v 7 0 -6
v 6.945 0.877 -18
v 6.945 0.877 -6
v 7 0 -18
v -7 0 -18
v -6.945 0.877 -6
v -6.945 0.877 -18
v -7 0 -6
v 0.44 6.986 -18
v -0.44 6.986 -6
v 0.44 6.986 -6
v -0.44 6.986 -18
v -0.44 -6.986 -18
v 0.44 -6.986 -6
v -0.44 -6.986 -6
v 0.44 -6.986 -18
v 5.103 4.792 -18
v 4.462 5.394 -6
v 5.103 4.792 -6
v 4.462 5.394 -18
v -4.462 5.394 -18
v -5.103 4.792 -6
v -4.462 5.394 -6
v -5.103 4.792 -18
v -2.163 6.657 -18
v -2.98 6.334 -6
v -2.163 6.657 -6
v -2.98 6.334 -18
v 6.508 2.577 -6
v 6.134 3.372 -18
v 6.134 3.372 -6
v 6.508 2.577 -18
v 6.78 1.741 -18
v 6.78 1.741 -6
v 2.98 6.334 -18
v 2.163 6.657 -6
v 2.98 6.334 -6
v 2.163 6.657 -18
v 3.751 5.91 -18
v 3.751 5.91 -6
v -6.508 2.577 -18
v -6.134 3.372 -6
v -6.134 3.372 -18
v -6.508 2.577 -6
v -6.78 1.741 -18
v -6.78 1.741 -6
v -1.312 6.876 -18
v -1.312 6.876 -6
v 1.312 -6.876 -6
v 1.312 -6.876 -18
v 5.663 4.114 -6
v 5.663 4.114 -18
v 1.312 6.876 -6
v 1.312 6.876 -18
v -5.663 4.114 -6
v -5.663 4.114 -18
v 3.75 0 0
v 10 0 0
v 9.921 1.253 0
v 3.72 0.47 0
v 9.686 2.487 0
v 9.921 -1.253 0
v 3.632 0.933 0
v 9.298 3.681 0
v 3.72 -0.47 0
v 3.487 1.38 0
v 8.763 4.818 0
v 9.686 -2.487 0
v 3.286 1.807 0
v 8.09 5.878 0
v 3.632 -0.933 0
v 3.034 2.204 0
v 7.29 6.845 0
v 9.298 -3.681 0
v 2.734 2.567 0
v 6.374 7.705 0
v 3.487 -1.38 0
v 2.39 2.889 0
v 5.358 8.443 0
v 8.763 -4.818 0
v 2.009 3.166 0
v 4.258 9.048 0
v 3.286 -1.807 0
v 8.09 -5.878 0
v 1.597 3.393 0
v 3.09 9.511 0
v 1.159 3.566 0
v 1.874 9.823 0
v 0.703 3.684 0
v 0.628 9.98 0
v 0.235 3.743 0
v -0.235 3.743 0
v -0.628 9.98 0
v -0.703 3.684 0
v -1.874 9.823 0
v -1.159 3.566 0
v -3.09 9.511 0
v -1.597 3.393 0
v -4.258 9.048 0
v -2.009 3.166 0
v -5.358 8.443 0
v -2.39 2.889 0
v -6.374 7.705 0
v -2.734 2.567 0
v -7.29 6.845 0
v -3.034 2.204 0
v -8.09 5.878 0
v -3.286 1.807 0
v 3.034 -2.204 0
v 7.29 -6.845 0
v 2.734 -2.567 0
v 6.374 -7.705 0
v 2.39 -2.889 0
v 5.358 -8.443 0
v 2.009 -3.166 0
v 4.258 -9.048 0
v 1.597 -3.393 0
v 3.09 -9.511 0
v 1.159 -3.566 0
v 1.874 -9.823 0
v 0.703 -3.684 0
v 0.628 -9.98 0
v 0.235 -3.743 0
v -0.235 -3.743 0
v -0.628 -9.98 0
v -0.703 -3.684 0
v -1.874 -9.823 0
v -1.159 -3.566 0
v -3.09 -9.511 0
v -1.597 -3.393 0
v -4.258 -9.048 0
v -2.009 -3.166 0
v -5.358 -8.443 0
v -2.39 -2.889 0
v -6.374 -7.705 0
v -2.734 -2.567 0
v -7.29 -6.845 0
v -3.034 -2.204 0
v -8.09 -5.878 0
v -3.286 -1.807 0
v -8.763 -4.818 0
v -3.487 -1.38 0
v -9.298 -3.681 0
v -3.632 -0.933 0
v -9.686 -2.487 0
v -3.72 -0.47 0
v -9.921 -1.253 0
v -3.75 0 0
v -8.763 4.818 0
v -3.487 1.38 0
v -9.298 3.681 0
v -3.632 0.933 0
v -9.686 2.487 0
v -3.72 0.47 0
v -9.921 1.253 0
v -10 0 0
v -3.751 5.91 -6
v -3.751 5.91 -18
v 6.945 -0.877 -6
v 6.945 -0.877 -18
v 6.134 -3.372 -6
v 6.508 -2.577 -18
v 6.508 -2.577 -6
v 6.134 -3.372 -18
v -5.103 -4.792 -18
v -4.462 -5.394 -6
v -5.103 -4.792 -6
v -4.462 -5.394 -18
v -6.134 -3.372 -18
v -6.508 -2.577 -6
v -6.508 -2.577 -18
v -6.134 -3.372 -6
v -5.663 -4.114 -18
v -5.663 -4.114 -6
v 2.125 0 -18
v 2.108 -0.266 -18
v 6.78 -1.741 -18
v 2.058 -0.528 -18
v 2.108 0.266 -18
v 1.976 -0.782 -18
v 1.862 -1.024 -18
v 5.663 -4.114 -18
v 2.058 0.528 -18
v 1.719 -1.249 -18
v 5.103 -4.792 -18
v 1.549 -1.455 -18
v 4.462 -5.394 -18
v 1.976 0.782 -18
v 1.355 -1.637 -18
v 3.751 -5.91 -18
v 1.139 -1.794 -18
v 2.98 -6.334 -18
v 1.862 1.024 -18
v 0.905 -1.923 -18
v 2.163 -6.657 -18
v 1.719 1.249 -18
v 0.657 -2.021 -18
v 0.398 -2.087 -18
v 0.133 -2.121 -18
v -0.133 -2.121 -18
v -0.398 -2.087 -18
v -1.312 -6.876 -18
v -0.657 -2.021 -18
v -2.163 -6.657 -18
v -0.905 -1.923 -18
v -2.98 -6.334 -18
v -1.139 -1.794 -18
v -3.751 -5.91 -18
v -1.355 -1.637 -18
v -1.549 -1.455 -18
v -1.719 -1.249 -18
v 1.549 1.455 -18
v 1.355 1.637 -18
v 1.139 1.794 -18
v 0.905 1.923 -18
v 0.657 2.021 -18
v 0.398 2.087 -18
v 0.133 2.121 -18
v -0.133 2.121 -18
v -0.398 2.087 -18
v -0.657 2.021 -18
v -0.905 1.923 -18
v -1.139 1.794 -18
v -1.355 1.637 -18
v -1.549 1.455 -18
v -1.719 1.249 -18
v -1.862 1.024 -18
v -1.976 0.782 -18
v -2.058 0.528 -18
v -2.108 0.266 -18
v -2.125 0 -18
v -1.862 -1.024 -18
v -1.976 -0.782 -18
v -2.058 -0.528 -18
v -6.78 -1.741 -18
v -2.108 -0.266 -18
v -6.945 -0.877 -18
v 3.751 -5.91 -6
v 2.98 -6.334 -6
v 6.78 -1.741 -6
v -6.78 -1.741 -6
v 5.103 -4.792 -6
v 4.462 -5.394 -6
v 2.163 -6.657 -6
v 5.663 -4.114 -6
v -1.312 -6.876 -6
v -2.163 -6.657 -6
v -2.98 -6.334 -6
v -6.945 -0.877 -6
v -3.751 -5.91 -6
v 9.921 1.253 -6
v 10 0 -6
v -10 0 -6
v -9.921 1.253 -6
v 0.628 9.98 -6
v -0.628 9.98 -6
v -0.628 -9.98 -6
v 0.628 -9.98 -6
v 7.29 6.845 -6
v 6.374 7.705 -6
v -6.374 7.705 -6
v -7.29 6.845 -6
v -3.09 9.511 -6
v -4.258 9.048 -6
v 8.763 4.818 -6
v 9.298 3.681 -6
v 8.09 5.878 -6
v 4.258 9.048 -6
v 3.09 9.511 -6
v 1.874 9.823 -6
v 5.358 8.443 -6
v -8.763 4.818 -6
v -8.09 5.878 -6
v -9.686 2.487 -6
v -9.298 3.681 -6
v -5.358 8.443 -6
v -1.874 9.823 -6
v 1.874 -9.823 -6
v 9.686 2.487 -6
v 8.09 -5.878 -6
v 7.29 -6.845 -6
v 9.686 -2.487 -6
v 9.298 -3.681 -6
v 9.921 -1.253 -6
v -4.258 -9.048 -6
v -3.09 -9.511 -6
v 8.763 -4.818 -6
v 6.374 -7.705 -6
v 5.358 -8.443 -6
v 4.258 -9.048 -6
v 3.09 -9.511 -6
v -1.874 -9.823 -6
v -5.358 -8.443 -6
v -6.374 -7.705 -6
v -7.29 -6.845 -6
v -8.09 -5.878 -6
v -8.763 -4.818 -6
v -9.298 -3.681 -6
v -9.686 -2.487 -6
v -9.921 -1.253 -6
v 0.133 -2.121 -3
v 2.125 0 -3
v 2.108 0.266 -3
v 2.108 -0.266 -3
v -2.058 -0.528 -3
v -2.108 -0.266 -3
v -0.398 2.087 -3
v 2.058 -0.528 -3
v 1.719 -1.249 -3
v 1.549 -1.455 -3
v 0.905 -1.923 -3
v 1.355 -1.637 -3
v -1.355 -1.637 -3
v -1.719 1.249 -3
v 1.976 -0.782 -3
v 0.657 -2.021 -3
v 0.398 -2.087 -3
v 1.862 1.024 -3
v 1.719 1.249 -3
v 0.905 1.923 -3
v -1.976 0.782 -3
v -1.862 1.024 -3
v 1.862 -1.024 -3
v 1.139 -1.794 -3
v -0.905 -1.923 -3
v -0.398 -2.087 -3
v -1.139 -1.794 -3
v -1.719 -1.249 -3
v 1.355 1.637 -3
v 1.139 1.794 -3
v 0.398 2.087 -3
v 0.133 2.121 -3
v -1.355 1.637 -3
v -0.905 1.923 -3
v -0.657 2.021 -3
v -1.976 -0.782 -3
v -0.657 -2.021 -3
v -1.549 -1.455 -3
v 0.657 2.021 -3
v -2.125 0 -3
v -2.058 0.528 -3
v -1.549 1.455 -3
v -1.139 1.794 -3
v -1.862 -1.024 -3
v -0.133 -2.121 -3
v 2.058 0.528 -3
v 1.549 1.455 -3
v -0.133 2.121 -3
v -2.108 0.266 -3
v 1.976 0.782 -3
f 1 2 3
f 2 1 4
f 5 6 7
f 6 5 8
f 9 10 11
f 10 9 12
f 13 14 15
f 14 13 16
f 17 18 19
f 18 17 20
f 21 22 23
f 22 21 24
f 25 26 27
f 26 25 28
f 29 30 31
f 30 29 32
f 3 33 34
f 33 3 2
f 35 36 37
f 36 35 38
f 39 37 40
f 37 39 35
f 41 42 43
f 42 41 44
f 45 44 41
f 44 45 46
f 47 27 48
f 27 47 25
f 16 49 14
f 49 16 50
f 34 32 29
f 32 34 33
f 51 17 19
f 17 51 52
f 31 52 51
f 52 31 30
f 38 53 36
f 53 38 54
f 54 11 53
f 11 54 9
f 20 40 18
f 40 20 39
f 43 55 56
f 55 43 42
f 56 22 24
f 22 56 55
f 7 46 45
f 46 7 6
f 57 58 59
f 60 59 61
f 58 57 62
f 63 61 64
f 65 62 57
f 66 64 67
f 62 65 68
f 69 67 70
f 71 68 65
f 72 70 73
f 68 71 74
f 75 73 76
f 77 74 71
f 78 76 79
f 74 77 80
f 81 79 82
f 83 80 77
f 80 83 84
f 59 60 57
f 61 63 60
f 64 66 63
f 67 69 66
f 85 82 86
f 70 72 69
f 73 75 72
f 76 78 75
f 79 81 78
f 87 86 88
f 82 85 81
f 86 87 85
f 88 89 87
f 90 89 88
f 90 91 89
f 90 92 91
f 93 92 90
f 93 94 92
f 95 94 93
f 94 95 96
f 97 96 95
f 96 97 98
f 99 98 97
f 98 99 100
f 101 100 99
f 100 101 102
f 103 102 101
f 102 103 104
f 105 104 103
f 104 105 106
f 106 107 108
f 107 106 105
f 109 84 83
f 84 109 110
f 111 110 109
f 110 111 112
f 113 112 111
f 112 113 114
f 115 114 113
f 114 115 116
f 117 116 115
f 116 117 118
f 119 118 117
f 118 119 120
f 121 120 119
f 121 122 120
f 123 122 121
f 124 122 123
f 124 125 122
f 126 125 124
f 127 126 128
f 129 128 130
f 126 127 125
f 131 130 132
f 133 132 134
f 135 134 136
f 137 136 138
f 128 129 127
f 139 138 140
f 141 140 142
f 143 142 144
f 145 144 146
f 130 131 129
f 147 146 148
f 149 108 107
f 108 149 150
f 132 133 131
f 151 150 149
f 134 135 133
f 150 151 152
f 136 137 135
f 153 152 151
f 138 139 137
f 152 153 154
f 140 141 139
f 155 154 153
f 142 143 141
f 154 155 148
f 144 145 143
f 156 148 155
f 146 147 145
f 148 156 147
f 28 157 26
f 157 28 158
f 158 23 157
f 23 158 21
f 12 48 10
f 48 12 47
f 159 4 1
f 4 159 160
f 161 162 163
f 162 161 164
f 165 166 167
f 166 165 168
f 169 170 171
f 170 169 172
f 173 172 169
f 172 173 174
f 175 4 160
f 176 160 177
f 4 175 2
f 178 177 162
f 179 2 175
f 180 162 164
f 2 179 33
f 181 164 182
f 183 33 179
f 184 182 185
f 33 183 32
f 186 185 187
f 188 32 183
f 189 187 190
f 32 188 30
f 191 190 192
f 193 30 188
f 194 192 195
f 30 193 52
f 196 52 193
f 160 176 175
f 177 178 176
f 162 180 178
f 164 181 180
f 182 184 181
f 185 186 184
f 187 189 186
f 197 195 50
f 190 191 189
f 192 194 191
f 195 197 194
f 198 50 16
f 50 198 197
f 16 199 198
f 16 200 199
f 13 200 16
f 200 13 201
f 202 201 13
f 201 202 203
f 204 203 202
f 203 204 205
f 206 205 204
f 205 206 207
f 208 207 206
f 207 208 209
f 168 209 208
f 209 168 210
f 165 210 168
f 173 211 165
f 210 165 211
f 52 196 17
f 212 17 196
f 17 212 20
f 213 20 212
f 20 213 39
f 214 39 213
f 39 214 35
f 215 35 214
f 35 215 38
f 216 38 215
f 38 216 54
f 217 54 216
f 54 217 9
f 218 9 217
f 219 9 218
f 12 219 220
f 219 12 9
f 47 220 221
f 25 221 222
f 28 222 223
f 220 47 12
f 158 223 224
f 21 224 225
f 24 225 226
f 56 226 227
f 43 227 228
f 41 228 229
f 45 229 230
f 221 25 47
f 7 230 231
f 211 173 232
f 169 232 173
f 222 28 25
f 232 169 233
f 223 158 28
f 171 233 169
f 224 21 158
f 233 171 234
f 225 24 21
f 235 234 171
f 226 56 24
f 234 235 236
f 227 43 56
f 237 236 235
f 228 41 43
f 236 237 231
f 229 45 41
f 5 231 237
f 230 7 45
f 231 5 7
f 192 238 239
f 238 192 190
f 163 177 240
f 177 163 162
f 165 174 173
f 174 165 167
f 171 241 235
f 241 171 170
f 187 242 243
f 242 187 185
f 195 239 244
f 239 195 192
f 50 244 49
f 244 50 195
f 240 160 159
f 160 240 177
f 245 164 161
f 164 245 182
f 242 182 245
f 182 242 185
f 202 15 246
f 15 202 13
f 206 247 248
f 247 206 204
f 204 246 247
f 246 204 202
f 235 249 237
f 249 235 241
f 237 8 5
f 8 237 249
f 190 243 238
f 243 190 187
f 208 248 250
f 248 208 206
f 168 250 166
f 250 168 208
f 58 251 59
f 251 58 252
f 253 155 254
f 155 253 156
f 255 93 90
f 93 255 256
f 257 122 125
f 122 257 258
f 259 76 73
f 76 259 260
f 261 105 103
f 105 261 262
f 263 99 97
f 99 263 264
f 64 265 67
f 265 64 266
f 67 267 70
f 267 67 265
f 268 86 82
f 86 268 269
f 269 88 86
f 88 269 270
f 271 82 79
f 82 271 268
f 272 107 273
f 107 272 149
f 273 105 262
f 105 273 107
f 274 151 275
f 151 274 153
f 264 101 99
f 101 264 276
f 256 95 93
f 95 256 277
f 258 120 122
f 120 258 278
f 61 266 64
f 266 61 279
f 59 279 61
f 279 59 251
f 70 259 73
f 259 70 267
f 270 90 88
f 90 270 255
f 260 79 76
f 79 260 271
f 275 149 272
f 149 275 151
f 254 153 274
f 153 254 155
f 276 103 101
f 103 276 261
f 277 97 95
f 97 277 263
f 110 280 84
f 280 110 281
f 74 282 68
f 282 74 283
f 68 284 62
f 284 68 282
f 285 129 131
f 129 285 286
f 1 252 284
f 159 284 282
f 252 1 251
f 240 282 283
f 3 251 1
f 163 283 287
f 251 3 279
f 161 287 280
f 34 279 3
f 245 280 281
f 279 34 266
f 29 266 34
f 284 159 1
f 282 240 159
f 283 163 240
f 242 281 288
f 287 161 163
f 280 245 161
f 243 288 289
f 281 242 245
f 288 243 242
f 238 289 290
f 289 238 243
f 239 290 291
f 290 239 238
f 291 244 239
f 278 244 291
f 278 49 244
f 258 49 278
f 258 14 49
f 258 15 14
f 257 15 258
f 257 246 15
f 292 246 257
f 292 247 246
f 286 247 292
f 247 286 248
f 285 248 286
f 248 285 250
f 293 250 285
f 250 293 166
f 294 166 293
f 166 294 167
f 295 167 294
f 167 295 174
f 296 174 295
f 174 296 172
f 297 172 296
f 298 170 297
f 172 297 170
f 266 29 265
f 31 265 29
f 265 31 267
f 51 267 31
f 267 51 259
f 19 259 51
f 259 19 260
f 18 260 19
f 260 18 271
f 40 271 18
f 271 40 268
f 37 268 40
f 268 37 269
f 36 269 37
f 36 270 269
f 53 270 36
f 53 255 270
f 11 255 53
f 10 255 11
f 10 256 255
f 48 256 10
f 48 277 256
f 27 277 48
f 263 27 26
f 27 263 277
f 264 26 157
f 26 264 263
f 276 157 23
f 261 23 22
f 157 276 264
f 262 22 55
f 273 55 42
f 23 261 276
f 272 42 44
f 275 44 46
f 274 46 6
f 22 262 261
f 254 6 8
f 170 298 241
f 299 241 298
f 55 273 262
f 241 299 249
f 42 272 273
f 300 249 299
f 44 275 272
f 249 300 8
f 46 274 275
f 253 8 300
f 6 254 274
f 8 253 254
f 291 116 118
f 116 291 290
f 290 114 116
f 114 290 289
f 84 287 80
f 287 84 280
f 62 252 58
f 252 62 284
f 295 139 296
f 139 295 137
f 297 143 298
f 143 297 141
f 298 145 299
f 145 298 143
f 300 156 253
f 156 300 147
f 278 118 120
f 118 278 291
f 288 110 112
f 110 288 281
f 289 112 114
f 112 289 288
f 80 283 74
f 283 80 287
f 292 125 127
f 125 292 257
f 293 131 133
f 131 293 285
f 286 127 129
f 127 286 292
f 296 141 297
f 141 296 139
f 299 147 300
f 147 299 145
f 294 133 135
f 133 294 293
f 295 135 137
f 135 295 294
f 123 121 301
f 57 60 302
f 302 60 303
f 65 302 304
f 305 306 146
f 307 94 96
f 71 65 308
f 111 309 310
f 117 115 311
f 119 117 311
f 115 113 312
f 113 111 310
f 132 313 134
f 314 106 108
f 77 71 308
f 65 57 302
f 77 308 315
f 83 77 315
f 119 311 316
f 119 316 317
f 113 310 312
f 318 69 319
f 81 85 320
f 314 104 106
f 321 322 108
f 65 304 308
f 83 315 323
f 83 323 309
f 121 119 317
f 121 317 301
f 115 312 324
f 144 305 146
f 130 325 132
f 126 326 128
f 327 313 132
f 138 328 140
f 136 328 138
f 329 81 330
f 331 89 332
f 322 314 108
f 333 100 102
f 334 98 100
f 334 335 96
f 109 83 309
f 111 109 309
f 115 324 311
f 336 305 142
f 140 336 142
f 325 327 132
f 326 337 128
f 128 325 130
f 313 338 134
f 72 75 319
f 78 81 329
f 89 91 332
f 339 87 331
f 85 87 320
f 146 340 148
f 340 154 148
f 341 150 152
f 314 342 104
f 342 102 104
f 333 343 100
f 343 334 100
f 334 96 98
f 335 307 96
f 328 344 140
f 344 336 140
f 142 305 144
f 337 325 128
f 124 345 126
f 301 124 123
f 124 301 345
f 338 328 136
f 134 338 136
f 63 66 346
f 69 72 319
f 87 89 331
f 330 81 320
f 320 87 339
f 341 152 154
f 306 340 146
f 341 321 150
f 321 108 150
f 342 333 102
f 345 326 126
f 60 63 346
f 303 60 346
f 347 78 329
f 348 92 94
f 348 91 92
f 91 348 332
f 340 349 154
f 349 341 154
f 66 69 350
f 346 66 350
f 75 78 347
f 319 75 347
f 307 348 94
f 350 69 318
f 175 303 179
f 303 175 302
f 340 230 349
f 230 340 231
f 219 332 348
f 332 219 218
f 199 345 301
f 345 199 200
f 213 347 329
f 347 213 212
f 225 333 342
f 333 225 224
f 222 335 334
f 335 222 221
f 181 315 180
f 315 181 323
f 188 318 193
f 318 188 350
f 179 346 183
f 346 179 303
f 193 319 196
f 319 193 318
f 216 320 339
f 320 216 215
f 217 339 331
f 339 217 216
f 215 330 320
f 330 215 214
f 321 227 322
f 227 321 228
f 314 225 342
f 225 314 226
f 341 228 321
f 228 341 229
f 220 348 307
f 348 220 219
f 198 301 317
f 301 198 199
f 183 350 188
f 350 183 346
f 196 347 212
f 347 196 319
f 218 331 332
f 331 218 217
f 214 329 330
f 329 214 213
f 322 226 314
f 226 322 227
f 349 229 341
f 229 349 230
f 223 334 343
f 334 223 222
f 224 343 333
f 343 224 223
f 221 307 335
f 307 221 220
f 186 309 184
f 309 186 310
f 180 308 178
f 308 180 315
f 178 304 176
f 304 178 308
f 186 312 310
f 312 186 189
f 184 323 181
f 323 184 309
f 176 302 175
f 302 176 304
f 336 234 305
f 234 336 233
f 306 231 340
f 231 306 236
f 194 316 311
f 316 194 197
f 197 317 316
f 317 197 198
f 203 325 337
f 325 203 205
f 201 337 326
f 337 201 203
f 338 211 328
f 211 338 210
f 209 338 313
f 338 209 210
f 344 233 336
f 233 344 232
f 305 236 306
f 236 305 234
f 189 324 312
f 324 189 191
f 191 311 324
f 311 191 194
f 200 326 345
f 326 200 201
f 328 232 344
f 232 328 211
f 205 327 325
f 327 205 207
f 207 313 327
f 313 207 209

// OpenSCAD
$fn = 50;


difference() {
	union() {
		translate(v = [0, 0, -18.0000000000]) {
			cylinder(h = 18, r = 7.0000000000);
		}
		translate(v = [0, 0, -6.0000000000]) {
			cylinder(h = 6, r = 10.0000000000);
		}
	}
	union() {
		translate(v = [0, 0, 0]) {
			rotate(a = [0, 0, 0]) {
				difference() {
					union() {
						#translate(v = [0, 0, -18.0000000000]) {
							cylinder(h = 18, r = 2.0000000000);
						}
						#translate(v = [0, 0, -3]) {
							cylinder(h = 3, r = 7.0000000000, r1 = 2.1250000000, r2 = 3.7500000000);
						}
						#translate(v = [0, 0, -18.0000000000]) {
							cylinder(h = 18, r = 2.1250000000);
						}
						#translate(v = [0, 0, -18.0000000000]) {
							cylinder(h = 18, r = 2.0000000000);
						}
					}
					union();
				}
			}
		}
	}
}
